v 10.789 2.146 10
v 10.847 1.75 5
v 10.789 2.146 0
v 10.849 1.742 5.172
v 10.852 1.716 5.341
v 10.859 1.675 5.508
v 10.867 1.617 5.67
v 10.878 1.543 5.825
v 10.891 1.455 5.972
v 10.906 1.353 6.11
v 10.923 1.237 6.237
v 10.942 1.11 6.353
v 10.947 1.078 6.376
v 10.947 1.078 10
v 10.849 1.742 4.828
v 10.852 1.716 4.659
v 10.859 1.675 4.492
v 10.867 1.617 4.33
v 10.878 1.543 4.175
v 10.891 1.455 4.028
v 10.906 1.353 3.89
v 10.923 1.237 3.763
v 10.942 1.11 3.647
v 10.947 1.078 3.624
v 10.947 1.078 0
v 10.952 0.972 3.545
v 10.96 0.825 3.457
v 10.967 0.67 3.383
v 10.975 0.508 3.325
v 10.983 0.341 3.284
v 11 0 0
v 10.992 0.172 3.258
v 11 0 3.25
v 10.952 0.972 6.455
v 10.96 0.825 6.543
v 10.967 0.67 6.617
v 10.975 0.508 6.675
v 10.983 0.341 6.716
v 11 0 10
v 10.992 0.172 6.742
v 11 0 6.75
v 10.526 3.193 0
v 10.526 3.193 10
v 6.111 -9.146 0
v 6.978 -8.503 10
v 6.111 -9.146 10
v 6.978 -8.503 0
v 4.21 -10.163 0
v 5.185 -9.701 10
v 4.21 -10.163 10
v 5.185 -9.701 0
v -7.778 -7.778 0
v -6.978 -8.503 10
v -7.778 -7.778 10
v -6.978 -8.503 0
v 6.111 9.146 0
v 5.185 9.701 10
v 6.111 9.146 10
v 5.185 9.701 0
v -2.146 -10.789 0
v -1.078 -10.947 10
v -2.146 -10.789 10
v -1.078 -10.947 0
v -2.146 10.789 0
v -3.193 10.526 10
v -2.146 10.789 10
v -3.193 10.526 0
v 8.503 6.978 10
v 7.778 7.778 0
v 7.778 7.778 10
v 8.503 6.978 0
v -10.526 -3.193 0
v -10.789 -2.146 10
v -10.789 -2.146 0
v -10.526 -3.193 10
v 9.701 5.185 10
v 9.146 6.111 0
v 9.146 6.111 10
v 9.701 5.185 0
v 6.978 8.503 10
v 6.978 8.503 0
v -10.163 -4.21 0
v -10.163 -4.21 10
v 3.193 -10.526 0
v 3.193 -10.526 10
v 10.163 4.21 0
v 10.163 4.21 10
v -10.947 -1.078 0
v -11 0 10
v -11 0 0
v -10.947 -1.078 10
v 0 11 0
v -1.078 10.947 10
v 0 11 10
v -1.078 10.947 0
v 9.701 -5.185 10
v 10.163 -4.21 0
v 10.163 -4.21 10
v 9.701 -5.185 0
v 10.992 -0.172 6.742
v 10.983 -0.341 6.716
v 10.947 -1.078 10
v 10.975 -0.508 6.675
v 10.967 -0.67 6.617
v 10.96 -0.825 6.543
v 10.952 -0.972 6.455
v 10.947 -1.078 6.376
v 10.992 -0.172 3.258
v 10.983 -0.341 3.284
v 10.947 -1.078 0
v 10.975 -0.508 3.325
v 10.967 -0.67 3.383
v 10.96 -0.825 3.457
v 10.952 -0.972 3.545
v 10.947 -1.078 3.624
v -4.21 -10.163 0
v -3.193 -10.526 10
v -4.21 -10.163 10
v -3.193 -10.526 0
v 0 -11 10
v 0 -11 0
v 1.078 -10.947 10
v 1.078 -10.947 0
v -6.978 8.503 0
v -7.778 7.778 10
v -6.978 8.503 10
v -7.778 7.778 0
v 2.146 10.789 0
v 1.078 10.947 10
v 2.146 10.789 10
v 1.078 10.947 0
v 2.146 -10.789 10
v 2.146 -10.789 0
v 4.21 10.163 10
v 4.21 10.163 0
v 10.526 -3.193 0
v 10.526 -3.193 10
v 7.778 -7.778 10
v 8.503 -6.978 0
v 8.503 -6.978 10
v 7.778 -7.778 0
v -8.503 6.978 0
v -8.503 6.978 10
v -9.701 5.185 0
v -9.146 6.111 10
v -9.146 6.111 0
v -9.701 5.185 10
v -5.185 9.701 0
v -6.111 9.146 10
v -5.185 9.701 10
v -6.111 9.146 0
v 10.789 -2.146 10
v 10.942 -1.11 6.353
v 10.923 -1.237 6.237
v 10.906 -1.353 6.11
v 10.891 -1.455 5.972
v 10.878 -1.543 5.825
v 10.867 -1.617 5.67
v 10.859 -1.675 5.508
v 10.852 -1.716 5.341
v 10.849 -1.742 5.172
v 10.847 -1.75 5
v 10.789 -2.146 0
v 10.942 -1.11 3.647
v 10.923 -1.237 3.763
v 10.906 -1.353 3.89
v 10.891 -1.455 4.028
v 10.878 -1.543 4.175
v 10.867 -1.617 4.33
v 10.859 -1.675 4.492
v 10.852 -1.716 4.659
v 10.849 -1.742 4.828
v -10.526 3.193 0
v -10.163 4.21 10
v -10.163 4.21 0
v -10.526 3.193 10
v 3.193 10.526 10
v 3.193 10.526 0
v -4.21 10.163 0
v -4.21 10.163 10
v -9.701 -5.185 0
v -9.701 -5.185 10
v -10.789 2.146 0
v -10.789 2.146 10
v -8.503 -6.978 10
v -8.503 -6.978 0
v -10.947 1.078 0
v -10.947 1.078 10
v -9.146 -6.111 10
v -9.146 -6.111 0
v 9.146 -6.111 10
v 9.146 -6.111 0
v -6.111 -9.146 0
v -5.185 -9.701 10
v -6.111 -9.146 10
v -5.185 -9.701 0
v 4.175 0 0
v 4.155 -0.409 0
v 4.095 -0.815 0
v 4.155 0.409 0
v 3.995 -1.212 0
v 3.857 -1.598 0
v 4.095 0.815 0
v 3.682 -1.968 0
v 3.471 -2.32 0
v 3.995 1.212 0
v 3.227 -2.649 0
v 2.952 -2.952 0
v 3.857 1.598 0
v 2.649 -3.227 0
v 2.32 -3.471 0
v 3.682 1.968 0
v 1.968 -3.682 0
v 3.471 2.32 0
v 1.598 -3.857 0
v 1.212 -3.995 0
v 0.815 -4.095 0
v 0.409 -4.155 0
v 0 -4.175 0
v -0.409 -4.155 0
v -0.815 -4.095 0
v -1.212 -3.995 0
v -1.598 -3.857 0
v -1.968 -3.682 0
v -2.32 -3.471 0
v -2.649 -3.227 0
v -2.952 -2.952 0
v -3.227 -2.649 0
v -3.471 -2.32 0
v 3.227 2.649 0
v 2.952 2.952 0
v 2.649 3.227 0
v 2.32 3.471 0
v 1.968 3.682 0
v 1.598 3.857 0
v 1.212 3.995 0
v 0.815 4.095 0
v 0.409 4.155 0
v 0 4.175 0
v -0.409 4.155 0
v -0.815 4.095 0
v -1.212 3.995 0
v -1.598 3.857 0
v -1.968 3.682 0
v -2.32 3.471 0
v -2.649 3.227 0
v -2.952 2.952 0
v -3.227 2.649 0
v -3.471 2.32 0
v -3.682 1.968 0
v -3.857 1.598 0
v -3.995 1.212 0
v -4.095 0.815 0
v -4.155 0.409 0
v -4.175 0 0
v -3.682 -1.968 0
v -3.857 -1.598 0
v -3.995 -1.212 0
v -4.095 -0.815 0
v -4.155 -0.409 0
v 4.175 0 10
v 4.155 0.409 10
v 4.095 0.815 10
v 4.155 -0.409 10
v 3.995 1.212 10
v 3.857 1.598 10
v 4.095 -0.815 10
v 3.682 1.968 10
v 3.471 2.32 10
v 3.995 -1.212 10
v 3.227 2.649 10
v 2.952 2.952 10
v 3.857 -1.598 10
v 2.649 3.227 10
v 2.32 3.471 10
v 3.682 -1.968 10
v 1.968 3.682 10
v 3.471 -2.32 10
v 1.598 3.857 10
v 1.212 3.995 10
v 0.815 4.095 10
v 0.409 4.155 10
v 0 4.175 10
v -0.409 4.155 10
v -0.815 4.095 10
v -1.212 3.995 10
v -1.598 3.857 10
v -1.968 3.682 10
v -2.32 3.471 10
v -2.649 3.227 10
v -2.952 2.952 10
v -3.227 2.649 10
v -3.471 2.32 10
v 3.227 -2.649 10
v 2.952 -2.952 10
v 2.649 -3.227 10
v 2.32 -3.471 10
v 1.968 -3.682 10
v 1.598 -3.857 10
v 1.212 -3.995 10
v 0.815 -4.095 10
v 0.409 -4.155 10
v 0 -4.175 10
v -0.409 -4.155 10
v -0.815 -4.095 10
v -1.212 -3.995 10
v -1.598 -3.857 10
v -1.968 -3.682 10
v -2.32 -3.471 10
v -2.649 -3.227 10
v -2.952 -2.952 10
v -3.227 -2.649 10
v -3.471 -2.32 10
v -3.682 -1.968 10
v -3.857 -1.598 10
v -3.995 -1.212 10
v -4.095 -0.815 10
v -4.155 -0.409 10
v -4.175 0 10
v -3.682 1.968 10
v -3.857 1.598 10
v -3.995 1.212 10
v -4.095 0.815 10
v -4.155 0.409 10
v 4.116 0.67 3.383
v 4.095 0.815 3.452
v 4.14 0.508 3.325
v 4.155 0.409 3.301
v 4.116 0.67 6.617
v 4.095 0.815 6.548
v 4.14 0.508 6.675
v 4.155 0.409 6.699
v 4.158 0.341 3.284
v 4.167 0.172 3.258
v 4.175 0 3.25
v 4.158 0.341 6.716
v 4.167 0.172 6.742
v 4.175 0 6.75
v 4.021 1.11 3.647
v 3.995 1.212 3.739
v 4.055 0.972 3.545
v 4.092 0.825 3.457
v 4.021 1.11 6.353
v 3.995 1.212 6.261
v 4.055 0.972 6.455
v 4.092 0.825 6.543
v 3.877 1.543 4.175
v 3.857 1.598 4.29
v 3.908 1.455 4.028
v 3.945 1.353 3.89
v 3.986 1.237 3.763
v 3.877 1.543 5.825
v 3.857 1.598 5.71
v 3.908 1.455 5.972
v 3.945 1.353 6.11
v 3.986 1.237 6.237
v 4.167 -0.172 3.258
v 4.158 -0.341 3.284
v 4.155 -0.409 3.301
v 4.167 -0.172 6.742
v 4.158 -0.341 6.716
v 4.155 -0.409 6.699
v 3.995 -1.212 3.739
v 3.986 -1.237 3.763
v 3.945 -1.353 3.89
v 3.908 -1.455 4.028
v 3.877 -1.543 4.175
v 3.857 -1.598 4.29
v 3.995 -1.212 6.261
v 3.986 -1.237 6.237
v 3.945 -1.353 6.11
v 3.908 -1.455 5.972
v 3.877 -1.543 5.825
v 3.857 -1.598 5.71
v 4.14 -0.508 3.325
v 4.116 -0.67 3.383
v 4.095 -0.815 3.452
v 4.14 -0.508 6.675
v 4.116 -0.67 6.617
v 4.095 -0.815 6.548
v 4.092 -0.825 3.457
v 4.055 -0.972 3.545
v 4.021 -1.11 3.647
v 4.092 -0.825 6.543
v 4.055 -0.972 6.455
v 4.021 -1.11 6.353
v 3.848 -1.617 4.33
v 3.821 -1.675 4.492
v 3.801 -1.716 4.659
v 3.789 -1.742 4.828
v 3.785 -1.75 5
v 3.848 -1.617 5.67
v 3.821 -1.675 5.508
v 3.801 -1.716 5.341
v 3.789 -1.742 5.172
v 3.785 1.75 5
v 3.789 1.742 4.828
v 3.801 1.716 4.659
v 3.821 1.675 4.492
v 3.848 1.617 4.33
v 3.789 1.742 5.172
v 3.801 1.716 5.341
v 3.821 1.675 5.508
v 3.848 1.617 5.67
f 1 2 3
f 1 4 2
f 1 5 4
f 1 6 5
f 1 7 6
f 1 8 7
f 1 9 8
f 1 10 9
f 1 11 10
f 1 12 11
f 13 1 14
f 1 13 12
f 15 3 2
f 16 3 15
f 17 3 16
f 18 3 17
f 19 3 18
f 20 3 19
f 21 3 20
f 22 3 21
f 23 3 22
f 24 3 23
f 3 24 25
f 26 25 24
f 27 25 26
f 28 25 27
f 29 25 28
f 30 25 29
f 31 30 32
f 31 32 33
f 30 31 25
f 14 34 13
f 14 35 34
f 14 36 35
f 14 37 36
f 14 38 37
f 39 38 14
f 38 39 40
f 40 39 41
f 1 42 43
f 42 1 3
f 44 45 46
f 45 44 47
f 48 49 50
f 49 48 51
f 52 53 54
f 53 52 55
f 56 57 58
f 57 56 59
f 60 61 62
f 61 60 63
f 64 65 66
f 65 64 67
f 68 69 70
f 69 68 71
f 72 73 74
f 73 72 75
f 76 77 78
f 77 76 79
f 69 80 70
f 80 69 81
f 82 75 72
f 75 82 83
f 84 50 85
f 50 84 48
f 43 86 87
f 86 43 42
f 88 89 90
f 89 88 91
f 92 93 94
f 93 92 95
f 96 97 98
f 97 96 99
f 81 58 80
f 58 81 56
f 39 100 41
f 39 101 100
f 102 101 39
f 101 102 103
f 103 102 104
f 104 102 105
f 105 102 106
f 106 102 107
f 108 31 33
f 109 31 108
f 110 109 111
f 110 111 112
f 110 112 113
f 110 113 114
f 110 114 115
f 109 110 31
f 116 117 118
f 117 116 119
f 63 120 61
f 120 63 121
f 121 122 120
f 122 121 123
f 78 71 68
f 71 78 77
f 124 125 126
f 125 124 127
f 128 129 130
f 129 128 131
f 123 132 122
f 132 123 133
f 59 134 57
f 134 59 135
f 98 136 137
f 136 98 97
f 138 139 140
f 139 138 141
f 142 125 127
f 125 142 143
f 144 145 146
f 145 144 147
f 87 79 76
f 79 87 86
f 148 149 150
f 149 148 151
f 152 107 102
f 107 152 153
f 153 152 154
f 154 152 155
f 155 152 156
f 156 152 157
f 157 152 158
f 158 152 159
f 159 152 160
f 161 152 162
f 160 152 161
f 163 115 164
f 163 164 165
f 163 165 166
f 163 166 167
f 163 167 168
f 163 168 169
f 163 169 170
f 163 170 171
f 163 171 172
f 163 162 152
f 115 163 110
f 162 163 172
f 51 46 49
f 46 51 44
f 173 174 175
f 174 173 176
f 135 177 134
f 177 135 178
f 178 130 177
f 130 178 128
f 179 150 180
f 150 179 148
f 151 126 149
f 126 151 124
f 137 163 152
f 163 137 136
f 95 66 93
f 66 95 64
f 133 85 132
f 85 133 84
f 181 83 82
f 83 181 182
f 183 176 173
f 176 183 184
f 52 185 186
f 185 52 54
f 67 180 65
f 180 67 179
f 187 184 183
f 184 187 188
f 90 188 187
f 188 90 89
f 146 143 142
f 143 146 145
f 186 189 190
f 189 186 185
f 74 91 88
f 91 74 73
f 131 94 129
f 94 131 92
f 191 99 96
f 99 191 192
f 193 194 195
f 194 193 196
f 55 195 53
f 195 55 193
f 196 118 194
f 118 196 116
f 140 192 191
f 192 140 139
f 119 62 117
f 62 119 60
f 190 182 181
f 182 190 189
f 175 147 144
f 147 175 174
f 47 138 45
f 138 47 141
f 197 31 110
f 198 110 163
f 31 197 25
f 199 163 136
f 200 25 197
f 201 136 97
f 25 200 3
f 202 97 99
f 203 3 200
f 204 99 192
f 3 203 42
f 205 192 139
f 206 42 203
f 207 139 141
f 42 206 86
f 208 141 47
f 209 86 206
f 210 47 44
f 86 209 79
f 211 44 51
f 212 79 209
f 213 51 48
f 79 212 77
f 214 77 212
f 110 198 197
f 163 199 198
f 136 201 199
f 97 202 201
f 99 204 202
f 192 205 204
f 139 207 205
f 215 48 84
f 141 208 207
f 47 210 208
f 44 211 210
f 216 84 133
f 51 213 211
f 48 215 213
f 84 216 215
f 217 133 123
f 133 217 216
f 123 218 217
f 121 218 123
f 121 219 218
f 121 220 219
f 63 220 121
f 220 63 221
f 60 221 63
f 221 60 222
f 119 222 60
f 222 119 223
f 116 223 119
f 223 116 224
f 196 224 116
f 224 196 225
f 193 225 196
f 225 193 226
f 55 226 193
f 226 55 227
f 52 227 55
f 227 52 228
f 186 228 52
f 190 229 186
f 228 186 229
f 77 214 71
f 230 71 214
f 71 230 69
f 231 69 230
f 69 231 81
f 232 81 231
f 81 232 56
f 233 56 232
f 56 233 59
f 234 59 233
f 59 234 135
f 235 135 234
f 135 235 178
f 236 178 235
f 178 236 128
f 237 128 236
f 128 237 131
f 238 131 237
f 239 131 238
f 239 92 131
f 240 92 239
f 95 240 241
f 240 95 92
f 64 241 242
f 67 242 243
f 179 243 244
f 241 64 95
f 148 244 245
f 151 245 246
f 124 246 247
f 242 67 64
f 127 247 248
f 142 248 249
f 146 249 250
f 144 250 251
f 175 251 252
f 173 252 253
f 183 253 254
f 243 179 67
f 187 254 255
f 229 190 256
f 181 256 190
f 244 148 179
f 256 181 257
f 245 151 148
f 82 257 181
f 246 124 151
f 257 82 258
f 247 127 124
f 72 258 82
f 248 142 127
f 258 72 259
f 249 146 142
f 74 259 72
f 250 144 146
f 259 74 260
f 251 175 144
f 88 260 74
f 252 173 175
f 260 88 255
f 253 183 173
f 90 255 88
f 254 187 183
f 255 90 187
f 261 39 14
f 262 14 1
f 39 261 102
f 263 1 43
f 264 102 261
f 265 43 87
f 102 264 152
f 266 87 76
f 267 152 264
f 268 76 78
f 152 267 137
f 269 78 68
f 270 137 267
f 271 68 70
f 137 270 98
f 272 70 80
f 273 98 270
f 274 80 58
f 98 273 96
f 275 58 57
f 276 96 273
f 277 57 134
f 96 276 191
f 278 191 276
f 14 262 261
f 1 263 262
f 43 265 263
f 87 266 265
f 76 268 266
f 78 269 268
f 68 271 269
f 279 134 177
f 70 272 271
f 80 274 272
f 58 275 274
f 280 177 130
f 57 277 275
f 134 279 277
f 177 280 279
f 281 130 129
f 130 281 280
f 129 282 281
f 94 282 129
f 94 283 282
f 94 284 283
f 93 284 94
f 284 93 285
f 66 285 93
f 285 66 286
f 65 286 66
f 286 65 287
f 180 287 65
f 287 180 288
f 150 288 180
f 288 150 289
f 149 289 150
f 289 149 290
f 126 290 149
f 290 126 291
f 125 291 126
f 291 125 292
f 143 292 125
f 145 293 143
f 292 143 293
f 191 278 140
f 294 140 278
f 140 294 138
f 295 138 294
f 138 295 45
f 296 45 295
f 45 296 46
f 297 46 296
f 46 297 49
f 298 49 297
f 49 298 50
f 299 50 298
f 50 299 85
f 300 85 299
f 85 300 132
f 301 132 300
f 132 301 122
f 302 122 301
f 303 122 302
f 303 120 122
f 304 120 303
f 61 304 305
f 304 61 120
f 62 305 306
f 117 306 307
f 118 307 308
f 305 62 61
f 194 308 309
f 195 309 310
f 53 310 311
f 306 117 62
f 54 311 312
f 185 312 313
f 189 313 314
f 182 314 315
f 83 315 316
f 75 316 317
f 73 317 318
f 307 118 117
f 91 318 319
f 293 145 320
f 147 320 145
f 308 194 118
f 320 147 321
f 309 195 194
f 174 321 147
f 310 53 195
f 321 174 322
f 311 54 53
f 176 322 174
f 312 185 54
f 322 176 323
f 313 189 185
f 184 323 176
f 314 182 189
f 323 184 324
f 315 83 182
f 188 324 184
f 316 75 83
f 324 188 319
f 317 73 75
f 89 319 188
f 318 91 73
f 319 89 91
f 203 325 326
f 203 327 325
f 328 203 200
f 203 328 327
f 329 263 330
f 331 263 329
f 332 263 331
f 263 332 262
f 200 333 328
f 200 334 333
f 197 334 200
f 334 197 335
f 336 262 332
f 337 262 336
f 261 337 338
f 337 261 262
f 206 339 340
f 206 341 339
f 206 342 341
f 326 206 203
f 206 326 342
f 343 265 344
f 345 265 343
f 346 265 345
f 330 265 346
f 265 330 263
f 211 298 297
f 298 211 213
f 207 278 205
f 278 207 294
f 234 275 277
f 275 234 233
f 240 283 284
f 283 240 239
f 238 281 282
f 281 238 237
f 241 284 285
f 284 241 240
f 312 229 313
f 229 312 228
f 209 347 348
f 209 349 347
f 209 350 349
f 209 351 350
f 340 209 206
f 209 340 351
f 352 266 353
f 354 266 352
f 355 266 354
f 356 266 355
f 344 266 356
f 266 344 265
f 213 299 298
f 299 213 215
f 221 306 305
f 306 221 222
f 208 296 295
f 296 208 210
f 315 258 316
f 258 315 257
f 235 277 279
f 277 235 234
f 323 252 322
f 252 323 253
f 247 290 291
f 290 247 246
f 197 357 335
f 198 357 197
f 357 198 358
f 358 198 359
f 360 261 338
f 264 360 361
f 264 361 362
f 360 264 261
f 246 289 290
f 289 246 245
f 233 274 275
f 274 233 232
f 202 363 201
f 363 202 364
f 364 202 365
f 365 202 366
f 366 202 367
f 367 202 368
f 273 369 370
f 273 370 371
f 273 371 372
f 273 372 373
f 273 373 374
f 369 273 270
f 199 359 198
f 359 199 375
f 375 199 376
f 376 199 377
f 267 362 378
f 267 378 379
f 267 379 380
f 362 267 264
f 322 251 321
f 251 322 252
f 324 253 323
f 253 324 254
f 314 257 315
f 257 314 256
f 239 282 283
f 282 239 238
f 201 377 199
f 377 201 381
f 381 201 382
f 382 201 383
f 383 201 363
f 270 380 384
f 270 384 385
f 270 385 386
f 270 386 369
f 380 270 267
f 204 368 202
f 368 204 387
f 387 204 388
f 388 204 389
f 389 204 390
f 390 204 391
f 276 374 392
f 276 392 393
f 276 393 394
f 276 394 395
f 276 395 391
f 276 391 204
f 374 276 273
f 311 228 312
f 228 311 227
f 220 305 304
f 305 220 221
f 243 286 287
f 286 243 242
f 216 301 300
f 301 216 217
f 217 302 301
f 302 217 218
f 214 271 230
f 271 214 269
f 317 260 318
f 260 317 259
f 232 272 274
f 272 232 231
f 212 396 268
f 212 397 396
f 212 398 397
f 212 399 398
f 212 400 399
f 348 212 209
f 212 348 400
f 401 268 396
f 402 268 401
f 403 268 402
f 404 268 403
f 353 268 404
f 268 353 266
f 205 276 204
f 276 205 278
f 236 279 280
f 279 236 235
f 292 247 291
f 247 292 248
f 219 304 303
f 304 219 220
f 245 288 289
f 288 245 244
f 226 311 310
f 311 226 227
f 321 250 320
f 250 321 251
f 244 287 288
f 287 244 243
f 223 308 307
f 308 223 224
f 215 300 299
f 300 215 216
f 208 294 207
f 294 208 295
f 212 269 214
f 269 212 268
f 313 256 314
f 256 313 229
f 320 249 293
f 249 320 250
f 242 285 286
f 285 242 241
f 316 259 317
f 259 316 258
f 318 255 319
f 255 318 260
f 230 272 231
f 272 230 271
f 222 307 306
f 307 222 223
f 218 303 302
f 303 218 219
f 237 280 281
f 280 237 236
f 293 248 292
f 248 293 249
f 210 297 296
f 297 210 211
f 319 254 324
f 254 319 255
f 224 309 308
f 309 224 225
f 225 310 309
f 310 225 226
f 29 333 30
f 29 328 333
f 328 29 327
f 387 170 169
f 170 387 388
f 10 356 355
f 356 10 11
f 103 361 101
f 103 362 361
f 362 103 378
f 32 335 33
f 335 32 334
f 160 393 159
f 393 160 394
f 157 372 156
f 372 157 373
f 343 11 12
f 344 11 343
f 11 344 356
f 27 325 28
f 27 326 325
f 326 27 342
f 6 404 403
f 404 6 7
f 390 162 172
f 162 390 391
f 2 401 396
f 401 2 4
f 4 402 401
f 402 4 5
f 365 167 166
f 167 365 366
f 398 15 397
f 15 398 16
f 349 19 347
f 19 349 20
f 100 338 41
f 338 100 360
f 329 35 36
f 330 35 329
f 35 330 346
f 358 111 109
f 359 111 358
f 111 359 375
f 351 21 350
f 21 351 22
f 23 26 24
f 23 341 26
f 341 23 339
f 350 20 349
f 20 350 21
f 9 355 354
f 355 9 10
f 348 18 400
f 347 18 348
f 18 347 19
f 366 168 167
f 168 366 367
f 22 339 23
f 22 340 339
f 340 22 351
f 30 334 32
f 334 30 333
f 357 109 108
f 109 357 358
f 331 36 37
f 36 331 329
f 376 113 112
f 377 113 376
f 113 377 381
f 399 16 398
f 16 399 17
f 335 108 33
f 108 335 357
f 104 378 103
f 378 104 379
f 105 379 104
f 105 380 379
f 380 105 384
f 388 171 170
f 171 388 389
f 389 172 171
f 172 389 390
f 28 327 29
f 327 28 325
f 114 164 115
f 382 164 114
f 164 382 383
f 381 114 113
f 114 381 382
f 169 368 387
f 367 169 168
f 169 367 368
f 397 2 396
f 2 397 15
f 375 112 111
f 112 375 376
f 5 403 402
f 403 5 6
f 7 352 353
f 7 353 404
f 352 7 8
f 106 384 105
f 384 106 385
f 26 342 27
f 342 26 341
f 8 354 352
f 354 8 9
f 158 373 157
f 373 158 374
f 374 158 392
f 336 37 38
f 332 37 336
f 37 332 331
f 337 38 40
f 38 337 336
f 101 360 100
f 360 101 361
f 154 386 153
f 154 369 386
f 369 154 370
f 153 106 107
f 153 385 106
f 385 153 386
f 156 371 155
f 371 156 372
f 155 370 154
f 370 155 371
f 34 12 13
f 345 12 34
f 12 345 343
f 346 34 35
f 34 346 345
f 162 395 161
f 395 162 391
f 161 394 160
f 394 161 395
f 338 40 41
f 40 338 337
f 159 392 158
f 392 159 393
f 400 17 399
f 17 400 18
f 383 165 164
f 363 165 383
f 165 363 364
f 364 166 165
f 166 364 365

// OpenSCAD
// file: parameters.scad
// =============================================================================
// Gen-BA Stacked dual-stator mid-rotor copper-max mega - WOUND-AWARE (HARD GATE)
// ONE mid dual-face Halbach rotor | TWO wound pancake stators | 18 coils x190 t
// =============================================================================

wire_awg            = 26;
wire_od             = 0.45;
turns               = 190;      // +5 vs Gen-AX 185; 18x190x~0.113 ~ 386 m
fill                = 0.70;
layers_per_face     = 2;
wind_build_axial    = layers_per_face * wire_od * fill;   // 0.63
wind_build_radial   = 3 * wire_od * fill;                 // 0.945

coil_id_r           = 16.0;
coil_od_r           = 60.0;
span_deg            = 34.0;     // 9 stations x 40 deg
former_web          = 1.20;     // print floor LB walls
flange_t            = 0.60;
wall                = 1.2;
slot_w              = 2.4;
mount_hole          = 3.5;
tab_len             = 7.0;

former_bare_h       = former_web + 2 * flange_t;            // 2.40
coil_envelope_h     = former_bare_h + 2 * wind_build_axial; // 3.66

run_clear           = 0.50;
gap_spacer_h        = run_clear + wind_build_axial;         // 1.13
m2m                 = coil_envelope_h + 2 * run_clear;      // 4.66 per gap

coil_stations       = 9;        // per stator; x2 = 18 total
bay_r_in            = coil_id_r - 2.0 - wind_build_radial;
bay_r_out           = coil_od_r + 2.0 + wind_build_radial;
bay_span            = span_deg + 4.0;
bay_offset          = 2.0;
bay_depth           = former_bare_h + wind_build_axial;     // wound sits in bay
stator_back_web     = 2.0;
stator_thick        = bay_depth + stator_back_web;
stator_od           = 156.0;
shaft_clear_stator  = 38.0;
coil_mount_r        = 27.0;

large_pocket_d      = 20.3;
small_pocket_d      = 5.3;
pocket_h            = 5.2;
large_n             = 8;
R_large             = 38.0;     // tighter copper overlap vs AX R=38.5
R_small_inner       = 25.0;
R_small_mid         = 38.0;
R_small_outer       = 55.0;
carrier_od          = 154.0;
mid_carrier_thick   = 12.0;
hub_h               = 10.0;
hub_od              = 30.0;
rotor_b_offset_deg  = 22.5;

shaft_bore          = 8.35;
bearing_d           = 21.85;
bearing_h           = 7.2;
m3_clear            = 3.5;
bolt_r_inner        = 36.0;
bolt_n_inner        = 6;
flange_bolt_r       = 72.0;
flange_bolt_n       = 6;
brace_r             = 68.0;
brace_d             = 4.3;
brace_n             = 4;

spacer_pad_od       = 14.0;
spacer_pad_id       = m3_clear;
endbell_od          = 156.0;
endbell_thick       = 8.0;
endbell_shaft_clear = 10.0;

$fn = 64;
// main file
// Gen-AX shaft collar — print ×2–4
include <parameters.scad>;
$fn = 64;
od = 22; id = shaft_bore; h = 10; set_d = 3.5;
difference() {
    cylinder(d=od, h=h);
    translate([0, 0, -0.1]) cylinder(d=id, h=h + 0.2);
    translate([0, 0, h/2]) rotate([0, 90, 0]) cylinder(d=set_d, h=od);
}
